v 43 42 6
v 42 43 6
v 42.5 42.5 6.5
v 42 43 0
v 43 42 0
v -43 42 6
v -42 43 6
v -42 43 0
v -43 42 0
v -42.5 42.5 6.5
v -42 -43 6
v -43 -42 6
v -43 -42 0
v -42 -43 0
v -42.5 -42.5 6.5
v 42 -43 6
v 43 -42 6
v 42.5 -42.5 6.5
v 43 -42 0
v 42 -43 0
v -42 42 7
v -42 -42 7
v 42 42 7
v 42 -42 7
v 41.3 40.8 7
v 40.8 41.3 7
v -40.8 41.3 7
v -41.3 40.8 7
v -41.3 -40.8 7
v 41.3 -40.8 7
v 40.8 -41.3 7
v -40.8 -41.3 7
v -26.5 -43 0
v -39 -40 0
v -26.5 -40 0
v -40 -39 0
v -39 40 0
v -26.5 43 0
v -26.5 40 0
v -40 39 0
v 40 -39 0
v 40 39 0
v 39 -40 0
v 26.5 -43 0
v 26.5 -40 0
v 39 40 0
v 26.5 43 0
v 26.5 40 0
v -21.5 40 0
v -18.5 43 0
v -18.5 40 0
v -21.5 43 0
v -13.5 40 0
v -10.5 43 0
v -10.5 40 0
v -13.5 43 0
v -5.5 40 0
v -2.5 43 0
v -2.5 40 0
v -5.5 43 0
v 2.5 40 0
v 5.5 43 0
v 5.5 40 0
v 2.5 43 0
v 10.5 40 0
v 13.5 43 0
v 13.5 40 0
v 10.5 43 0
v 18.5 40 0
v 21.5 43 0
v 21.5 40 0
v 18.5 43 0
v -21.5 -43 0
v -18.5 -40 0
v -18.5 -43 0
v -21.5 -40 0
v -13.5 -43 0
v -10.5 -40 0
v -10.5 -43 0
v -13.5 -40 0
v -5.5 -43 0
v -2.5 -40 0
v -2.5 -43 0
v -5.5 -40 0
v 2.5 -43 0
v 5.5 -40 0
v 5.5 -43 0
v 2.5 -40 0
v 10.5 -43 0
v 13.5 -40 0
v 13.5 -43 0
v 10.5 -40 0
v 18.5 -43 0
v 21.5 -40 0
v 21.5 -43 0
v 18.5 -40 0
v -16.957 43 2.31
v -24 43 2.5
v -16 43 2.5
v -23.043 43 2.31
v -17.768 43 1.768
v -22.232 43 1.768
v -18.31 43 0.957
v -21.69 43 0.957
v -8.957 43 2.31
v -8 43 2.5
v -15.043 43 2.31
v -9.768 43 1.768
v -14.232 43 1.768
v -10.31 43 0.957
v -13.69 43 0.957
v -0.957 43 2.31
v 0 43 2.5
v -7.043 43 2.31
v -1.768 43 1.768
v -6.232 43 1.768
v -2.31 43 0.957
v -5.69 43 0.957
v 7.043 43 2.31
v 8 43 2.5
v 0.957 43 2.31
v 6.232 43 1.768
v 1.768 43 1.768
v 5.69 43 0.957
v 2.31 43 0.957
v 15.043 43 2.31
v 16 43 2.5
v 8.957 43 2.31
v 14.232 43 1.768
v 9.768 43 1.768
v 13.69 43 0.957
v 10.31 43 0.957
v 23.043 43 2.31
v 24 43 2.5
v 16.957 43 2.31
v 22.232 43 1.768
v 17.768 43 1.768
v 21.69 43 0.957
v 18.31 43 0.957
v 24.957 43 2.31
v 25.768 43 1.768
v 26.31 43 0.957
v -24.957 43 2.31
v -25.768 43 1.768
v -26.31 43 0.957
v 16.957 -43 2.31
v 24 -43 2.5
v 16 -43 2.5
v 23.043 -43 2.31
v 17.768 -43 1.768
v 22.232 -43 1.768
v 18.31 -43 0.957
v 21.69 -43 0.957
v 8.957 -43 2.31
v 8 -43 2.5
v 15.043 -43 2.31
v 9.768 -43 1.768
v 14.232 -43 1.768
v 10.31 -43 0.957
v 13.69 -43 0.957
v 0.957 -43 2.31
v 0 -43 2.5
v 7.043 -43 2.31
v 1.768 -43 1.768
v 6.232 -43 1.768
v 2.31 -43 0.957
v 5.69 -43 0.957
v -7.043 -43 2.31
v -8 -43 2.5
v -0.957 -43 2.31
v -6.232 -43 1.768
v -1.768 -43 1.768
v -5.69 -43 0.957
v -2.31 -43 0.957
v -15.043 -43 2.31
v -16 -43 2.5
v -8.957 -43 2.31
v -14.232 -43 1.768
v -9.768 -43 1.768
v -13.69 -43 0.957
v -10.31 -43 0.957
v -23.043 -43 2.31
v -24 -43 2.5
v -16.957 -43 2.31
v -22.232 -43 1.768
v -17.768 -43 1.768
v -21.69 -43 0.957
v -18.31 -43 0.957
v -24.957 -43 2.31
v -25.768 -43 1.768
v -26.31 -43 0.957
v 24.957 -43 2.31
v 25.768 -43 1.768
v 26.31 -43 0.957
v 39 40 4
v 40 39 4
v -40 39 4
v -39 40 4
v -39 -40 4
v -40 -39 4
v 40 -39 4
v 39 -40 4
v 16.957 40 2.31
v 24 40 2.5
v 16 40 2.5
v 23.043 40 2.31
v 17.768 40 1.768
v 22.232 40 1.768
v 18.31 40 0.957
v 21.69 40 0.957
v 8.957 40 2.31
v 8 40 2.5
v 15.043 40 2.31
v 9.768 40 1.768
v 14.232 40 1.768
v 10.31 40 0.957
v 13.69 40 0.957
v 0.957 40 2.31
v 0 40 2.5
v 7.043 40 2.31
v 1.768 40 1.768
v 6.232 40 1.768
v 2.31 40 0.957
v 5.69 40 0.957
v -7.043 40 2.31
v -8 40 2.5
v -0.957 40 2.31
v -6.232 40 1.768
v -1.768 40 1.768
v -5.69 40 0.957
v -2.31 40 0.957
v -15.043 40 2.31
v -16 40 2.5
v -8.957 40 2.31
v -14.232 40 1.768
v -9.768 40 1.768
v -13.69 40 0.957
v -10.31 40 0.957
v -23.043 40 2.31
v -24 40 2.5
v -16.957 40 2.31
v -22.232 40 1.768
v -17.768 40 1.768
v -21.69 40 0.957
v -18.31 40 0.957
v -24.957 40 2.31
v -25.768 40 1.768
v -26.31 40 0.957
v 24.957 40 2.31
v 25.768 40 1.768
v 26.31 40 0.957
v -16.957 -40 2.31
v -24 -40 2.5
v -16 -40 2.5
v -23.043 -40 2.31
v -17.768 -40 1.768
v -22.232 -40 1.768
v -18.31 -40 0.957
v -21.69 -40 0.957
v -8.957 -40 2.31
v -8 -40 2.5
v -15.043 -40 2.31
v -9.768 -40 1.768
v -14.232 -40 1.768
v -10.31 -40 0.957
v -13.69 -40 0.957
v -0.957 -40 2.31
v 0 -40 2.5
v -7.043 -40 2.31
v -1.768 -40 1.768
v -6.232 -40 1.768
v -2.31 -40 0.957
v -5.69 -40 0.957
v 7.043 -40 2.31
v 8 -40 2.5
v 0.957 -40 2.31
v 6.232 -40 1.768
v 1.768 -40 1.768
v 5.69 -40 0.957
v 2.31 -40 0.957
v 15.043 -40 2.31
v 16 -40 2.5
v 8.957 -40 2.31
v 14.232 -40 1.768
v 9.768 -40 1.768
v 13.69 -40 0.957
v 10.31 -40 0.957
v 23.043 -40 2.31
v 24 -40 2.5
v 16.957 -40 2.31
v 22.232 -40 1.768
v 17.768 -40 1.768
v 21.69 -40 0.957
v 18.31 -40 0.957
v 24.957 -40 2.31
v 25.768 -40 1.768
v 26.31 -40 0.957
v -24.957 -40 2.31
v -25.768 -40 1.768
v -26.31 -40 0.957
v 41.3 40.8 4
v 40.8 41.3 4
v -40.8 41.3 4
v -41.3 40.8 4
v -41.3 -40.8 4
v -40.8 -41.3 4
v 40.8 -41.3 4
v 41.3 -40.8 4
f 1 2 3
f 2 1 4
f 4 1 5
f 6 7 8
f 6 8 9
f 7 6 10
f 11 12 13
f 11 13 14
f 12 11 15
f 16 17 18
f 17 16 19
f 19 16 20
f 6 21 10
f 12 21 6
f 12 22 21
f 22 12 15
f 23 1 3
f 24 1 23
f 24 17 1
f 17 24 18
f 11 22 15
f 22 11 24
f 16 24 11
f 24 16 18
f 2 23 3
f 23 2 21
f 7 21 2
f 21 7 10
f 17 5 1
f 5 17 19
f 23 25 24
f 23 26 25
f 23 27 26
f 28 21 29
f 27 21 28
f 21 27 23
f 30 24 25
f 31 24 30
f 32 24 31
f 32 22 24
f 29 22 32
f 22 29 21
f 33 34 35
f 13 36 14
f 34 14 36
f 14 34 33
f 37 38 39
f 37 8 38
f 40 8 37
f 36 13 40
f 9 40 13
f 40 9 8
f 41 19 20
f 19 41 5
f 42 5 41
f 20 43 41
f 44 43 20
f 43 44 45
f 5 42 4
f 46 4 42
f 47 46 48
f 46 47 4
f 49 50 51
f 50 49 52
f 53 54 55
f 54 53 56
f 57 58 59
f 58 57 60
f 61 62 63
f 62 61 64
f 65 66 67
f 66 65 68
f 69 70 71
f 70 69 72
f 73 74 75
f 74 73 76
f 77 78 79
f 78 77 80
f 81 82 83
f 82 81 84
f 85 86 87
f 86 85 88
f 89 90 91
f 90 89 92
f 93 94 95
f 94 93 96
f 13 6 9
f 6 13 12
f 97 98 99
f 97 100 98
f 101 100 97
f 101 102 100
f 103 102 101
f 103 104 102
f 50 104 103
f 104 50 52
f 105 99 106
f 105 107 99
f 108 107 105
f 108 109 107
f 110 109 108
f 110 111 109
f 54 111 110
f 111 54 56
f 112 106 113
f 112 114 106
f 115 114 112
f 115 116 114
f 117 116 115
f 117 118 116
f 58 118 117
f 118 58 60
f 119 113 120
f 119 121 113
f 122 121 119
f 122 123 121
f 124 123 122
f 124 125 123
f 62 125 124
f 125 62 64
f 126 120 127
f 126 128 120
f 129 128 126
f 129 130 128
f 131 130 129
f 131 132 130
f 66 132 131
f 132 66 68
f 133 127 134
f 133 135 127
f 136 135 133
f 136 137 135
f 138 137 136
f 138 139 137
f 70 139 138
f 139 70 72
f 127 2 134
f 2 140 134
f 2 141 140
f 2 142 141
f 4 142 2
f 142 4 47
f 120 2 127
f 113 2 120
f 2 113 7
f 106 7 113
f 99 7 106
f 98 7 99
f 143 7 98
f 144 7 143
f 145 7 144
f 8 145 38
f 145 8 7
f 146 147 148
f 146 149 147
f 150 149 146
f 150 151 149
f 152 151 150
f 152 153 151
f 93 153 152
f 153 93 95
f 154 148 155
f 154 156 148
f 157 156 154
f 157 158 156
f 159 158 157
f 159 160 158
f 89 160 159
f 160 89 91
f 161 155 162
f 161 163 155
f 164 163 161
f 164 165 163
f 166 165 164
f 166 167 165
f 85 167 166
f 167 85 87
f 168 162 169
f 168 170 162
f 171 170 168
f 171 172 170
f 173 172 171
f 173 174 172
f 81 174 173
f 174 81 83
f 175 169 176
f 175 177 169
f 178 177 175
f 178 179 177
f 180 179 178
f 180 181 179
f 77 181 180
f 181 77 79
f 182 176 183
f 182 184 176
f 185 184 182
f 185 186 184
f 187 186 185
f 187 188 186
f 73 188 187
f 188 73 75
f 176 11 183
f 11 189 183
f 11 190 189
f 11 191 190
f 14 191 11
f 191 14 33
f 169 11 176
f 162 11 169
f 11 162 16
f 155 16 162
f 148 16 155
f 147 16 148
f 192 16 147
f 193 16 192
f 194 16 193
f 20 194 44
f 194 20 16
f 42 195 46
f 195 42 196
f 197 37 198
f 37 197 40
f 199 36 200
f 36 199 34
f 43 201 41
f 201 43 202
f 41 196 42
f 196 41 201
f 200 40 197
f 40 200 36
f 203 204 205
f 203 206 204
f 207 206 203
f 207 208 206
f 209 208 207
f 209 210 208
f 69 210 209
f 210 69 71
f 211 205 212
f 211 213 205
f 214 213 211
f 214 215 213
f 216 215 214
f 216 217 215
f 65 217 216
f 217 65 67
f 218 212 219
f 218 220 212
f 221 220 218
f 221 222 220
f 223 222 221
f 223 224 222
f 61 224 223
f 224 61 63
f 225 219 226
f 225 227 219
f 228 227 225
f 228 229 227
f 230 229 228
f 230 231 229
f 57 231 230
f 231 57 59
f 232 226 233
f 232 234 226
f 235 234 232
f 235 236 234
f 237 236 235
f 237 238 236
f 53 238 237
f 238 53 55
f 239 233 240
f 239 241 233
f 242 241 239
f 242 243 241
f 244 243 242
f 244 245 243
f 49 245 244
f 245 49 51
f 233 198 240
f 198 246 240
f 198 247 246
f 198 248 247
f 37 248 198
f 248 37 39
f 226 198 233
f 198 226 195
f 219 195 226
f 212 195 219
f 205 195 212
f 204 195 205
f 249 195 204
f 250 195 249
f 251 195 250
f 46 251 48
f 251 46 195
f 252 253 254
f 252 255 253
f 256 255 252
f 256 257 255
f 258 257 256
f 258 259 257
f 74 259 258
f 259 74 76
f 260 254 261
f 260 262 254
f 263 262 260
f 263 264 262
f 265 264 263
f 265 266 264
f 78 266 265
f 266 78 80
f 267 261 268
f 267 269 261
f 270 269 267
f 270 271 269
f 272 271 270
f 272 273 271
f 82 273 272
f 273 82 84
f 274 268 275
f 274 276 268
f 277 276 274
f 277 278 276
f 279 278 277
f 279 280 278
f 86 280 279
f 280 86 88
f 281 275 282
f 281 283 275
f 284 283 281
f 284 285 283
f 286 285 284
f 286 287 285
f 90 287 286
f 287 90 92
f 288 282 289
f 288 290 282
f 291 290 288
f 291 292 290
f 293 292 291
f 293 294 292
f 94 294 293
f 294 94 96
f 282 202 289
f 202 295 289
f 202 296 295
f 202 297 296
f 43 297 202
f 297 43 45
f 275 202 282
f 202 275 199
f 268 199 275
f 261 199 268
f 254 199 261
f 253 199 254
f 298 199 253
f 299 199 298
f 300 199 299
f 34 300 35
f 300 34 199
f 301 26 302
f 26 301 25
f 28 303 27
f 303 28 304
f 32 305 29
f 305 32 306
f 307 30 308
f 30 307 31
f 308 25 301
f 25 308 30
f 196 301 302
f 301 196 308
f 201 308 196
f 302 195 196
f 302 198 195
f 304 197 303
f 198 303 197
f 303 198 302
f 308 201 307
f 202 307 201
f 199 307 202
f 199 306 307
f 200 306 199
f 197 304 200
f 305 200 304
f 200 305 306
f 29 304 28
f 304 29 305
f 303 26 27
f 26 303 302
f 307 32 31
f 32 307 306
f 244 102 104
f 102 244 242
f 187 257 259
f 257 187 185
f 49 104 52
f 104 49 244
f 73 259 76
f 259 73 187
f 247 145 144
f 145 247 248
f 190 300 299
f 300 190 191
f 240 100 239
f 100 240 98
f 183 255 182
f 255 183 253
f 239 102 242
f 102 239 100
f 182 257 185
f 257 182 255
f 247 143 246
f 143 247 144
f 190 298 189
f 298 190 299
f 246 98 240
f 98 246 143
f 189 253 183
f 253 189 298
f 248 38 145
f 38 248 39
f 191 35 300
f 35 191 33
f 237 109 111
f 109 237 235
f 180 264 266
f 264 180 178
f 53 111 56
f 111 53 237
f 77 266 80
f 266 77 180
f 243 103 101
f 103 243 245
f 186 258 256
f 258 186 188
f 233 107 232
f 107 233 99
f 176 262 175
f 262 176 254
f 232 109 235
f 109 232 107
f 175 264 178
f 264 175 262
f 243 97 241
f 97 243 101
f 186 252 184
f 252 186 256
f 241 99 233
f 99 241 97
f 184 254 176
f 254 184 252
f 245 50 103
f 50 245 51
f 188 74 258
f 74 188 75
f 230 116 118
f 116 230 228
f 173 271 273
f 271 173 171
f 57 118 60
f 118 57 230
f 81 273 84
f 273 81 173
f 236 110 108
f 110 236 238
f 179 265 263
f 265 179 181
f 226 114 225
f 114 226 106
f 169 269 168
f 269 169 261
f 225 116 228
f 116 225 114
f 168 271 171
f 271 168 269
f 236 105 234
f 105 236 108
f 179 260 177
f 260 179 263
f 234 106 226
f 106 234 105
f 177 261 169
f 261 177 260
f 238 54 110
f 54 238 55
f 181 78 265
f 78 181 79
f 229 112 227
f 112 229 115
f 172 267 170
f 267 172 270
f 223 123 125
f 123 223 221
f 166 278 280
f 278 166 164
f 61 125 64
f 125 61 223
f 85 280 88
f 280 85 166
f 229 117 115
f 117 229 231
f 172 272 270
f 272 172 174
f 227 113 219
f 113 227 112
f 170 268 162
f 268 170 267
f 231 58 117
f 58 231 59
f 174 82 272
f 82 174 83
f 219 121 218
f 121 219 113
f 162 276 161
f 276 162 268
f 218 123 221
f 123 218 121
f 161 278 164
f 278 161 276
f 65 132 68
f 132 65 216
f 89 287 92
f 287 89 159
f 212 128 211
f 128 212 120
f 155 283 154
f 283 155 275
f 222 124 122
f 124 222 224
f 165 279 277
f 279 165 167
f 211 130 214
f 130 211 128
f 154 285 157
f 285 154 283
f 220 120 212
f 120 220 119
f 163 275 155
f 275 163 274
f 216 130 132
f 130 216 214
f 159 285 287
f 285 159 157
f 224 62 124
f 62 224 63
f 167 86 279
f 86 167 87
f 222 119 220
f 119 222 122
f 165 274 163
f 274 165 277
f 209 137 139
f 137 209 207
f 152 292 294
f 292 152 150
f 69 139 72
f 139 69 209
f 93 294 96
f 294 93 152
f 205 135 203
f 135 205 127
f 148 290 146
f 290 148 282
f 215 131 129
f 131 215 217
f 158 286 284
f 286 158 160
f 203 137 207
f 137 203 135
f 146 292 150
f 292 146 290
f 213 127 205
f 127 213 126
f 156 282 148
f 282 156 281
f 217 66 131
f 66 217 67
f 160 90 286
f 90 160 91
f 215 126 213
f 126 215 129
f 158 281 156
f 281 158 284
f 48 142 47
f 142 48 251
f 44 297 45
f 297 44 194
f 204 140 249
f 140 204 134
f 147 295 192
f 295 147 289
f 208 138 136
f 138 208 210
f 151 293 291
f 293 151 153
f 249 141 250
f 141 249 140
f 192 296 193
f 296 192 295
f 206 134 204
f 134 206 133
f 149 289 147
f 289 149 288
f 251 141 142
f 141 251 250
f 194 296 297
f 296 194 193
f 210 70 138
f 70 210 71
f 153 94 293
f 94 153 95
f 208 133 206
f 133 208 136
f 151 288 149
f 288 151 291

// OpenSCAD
// file: light_matrix_lib.scad
/*

  light_matrix_lib.scad
  
*/

$fn=16;

outerLWDia = 4.7;
innerLWDia = 4.4;

xcnt=8;
ycnt=8;
xstep=10;
ystep=10;
xwidth=xcnt*xstep;
ywidth=ycnt*ystep;
matrixHeight=15;
frameWall=2;
framePedestalWidth=1;
framePedestalHeight=3;
framePedestalInsertDelta=0.3;
frameHeight=4;



module lightMatrix() {
  difference() {
    CenterCube([xwidth+framePedestalWidth*2, 
      ywidth+framePedestalWidth*2, 
      matrixHeight], 
      ChamferBody = 1.2, ChamferBottom=0, ChamferTop=1.2);
    for( y=[0:ycnt-1] ) {
      for( x=[0:xcnt-1] ) {
        translate([x*xstep-xwidth/2+xstep/2, y*ystep-ywidth/2+ystep/2, -0.01])
        cylinder(d1=innerLWDia, d2=outerLWDia, h=matrixHeight+0.02);    
      }
    }
  }
}

module lightFrame() {
  difference() {
    CenterCube([
      xwidth+frameWall*2+framePedestalWidth*2, 
      ywidth+frameWall*2+framePedestalWidth*2, 
      frameHeight+framePedestalHeight], ChamferBody = 1, ChamferBottom=0, ChamferTop=1);
    translate([0,0,-0.01])
    CenterCube([xwidth, ywidth, frameHeight+0.02], ChamferBody = 1, ChamferBottom=0, ChamferTop=0);
    translate([0,0,frameHeight])
    CenterCube([
      xwidth+framePedestalWidth*2+2*framePedestalInsertDelta, 
      ywidth+framePedestalWidth*2+2*framePedestalInsertDelta, 
      framePedestalHeight+0.02], ChamferBody = 0.5, ChamferBottom=0, ChamferTop=0);

    for(i=[-3:3] ) {
      translate([i*8,0,0])
      rotate([90,0,0])
      cylinder(d=5, h=xwidth*2, center=true);
    }

  }
}
// file: base_objects.scad
/*

  base_objects.scad
  
  (c) olikraus@gmail.com

  This work is licensed under the Creative Commons Attribution-NonCommercial-ShareAlike 4.0 International License.
  To view a copy of this license, visit http://creativecommons.org/licenses/by-nc-sa/4.0/.

  SquareFrustum(bottom=[10,10], top=[0,0], h=10)
  CenterCube(dim, ChamferBody = 0, ChamferBottom=0, ChamferTop=0)
  Archoid(r=10, b=20, l=30)

*/


/*
  SquareFrustum(bottom=[10,10], top=[0,0], h=10)
  https://en.wikipedia.org/wiki/Frustum
  
  Args:
    buttom: Bottom square (width, height)
    top: Top square (width, height)
    h: Distance of the top square to z=0 plane
    ChamferBody: The amount to chamfer for edges parallel to z axis
  Notes:
    The bottom square is placed in the z=0 plane.
    The squares are centered around z axis.
  Example:
    SquareFrustum([20,20], [10,4], h=20);
    

    // create a rectangle bowl
    // same example as for CenterCube
    // SquareFrustum might be more flexible because it is not
    // restricted to the 45 degree chamfer
    
    union() {
      wallthickness=2;
      xwidth = 10;
      ywidth = 20;
      height = 5;
      translate([0,0,wallthickness])
      difference() {
        CenterCube([xwidth+2*wallthickness,ywidth+2*wallthickness,5-wallthickness]);
        CenterCube([xwidth,ywidth,5-wallthickness+0.01]);
      }    
      SquareFrustum(
        bottom=[xwidth,ywidth], 
        top=[xwidth+2*wallthickness,ywidth+2*wallthickness], 
        h=wallthickness);
    }
    
*/
module SquareFrustum_old(bottom=[10,10], top=[0,0], h=10) {
  lx = bottom[0];
  ly = bottom[1];
  ux = top[0];
  uy = top[1];
  p = [
    [ -lx/2, -ly/2,  0 ],  //0
    [ lx/2,  -ly/2,  0 ],  //1
    [ lx/2,  ly/2,  0 ],  //2
    [ -lx/2,  ly/2,  0 ],  //3
    [ -ux/2, -uy/2,  h ],  //4
    [ ux/2,  -uy/2,  h ],  //5
    [ ux/2,  uy/2,  h ],  //6
    [ -ux/2,  uy/2,  h ]]; //7
    
  f = [
    [0,1,2,3],  // bottom
    [4,5,1,0],  // front
    [7,6,5,4],  // top
    [5,6,2,1],  // right
    [6,7,3,2],  // back
    [7,4,0,3]]; // left
  polyhedron( p, f );
}

module SquareFrustum(bottom=[10,10], top=[0,0], h=10, ChamferBody=0) {
  c = ChamferBody/2;
  lx = bottom[0]-2*c;
  ly = bottom[1]-2*c;
  ux = top[0]-2*c;
  uy = top[1]-2*c;
  p = [
    [ -lx/2-c, -ly/2+c,  0 ],  //0 / 0, 0
    [ -lx/2+c, -ly/2-c,  0 ],  //0 / 1, 1
  
    [ lx/2-c,  -ly/2-c,  0 ],  //1 / 0, 2
    [ lx/2+c,  -ly/2+c,  0 ],  //1 / 1, 3
  
    [ lx/2+c,  ly/2-c,  0 ],  //2 / 0, 4
    [ lx/2-c,  ly/2+c,  0 ],  //2 / 1, 5
  
    [ -lx/2+c,  ly/2+c,  0 ],  //3 / 0, 6
    [ -lx/2-c,  ly/2-c,  0 ],  //3 / 1, 7
  
    [ -ux/2-c, -uy/2+c,  h ],  //4 / 0, 8
    [ -ux/2+c, -uy/2-c,  h ],  //4 / 1, 9
  
    [ ux/2-c,  -uy/2-c,  h ],  //5 / 0, 10
    [ ux/2+c,  -uy/2+c,  h ],  //5 / 1, 11
 
    [ ux/2+c,  uy/2-c,  h ],  //6 / 0, 12
    [ ux/2-c,  uy/2+c,  h ],  //6 / 1, 13
    
    [ -ux/2+c,  uy/2+c,  h ], //7 / 0, 14
    [ -ux/2-c,  uy/2-c,  h ]]; //7 / 1, 15
    
  f = [
    [0,1,2,3,4,5,6,7],  // bottom
    [8,9,1,0], // front left
    [9,10,2,1],  // front 
    [10,11,3,2], // front right
    [15,14,13,12,11,10,9,8],  // top
    [11,12,4,3],  // right
    [12,13,5,4],  // back right
    [13,14,6,5],  // back
    [14,15,7,6], // back left
    [15,8,0,7]]; // left
  polyhedron( p, f );
}


/*
  ChamferZCube(w=1,h=10)

  A cube, which can be used to chamfer along the z axis

  Args:
    w: The width of the cube is sqrt(2)*w
    h: Height of the cube
    d: The cube has a descent below z=0 plane and an ascent beyond h by this value
  Notes:
    The cube is centered around z-axsis and placed on z=0 plane.

*/
module ChamferZCube(w=1,h=10, d=0) {
  translate([0,0,h/2])
  rotate([0,0,45])
  cube([sqrt(2)*w,sqrt(2)*w,h+2*d], center=true);
}

module ChamferXCube(w=1,h=10, d=0) {
  rotate([45,0,0])
  cube([h+2*d,sqrt(2)*w,sqrt(2)*w], center=true);
}

module ChamferYCube(w=1,h=10, d=0) {
  rotate([0,45,0])
  cube([sqrt(2)*w,h+2*d,sqrt(2)*w], center=true);
}

/*
  CenterCube(dim, ChamferBody = 0, ChamferBottom=0, ChamferTop=0)

  A cube which is centered along z axis but is placed on z=0 plane
  Optionally allows chamfer along z axis.

  Args:
    dim: Same as for cube(dim)
    ChamferBody: The amount to chamfer for edges parallel to z axis
    ChamferBottom: The amount to chamfer for edges in z=0 plane
    ChamferTop: The amount to chamfer for edges in z=dim[2] plane
  Example:
    CenterCube([10, 20, 5]);

    // create a rectangle bowl
    // thanks to chamfer no support is required with 3d print
    difference() {  
      wallthickness=2;
      xwidth = 10;
      ywidth = 20;
      height = 5;
      CenterCube( 
        [xwidth+2*wallthickness, ywidth+2*wallthickness, height], 
        ChamferBottom = wallthickness);
      translate([0,0,wallthickness])
      CenterCube([xwidth,ywidth,height]);
    }

*/

module CenterCube(dim, ChamferBody = 0, ChamferBottom=0, ChamferTop=0) {
  difference() {
    translate([0,0,dim[2]/2])
    cube(dim, center=true);

    if ( ChamferBody > 0 ) {
      translate([dim[0]/2,dim[1]/2,0])
      ChamferZCube(w=ChamferBody,h=dim[2],d=0.01);
      
      translate([-dim[0]/2,dim[1]/2,0])
      ChamferZCube(w=ChamferBody,h=dim[2],d=0.01);

      translate([-dim[0]/2,-dim[1]/2,0])
      ChamferZCube(w=ChamferBody,h=dim[2],d=0.01);

      translate([dim[0]/2,-dim[1]/2,0])
      ChamferZCube(w=ChamferBody,h=dim[2],d=0.01);
    }
    
    if ( ChamferBottom > 0 )
    {
      translate([-dim[0]/2,0,0])
      ChamferYCube(w=ChamferBottom,h=dim[1],d=0.01);

      translate([dim[0]/2,0,0])
      ChamferYCube(w=ChamferBottom,h=dim[1],d=0.01);

      translate([0,-dim[1]/2,0])
      ChamferXCube(w=ChamferBottom,h=dim[0],d=0.01);

      translate([0,dim[1]/2,0])
      ChamferXCube(w=ChamferBottom,h=dim[0],d=0.01);
    }
    
    if ( ChamferTop > 0 )
    {
      translate([-dim[0]/2,0,dim[2]])
      ChamferYCube(w=ChamferTop,h=dim[1],d=0.01);

      translate([dim[0]/2,0,dim[2]])
      ChamferYCube(w=ChamferTop,h=dim[1],d=0.01);

      translate([0,-dim[1]/2,dim[2]])
      ChamferXCube(w=ChamferTop,h=dim[0],d=0.01);

      translate([0,dim[1]/2,dim[2]])
      ChamferXCube(w=ChamferTop,h=dim[0],d=0.01);
    }
    
  }
}

/*
  Archoid(r=10, b=20, l=30)

  A chest like element with a half cylinder on the top
  and a box as a base.
  If used with difference, the result is a archway.

  Args:
    r: Radius of the half-cylinder
    b: height of the base block
    l: length of the chest in x direction.
    $fn: resolution of the half cylinder
  Notes:
    The width of the chest is 2*r, the height is b+r.
    Archoid(r=10, b=20, l=30, $fn=4) becomes a house.

*/
module Archoid(r=10, b=20, l=30) {
  union() {
    translate([0,0,b])
    difference() {
      rotate([0,90,0])
      cylinder(r=r,h=l,center=true);
      translate([0,0,-r])
      cube([2*l,2*l,2*r], center=true);
    }
    translate([0,0,b/2])
    cube([l,2*r,b+0.01], center=true);
  }
}
// main file
/*
  
    light_frame.scad

*/

include <base_objects.scad>;
include <light_matrix_lib.scad>;

//lightMatrix();

lightFrame();
